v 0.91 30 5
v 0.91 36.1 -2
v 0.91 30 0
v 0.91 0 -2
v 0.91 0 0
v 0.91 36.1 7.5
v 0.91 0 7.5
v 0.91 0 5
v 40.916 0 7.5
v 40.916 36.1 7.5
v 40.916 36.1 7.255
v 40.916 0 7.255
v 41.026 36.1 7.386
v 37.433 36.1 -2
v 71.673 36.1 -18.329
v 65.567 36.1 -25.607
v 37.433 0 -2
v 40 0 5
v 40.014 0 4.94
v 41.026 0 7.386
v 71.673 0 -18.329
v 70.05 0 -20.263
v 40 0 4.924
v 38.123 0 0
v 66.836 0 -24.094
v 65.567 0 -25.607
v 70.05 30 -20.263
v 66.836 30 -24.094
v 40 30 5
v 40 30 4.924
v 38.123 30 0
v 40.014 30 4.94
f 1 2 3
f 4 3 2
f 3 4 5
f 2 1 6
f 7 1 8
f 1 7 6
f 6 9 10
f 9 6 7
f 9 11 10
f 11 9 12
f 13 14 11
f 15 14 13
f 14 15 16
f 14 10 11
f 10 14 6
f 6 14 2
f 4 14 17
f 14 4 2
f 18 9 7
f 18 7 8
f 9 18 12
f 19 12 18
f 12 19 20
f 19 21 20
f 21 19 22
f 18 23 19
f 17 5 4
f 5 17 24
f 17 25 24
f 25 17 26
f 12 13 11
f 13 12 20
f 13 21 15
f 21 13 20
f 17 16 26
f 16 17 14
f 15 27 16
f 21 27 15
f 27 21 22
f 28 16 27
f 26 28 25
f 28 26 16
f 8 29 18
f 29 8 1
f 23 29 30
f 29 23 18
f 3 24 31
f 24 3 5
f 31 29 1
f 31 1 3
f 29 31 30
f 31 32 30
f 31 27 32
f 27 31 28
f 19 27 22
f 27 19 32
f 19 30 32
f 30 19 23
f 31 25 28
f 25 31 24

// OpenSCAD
difference(){
    translate([-35,0,-2])scale([1.9,1.9,1.9])union(){
        translate([18.9,0])cube([21.056,19,5]);
        translate([36.8,0,1.11])rotate([0,40])cube([21.056,19,5]);
    }
    cube([40,30,5]);
    translate([36.8,0,1.11])rotate([0,40])cube([40,30,5]);
}
